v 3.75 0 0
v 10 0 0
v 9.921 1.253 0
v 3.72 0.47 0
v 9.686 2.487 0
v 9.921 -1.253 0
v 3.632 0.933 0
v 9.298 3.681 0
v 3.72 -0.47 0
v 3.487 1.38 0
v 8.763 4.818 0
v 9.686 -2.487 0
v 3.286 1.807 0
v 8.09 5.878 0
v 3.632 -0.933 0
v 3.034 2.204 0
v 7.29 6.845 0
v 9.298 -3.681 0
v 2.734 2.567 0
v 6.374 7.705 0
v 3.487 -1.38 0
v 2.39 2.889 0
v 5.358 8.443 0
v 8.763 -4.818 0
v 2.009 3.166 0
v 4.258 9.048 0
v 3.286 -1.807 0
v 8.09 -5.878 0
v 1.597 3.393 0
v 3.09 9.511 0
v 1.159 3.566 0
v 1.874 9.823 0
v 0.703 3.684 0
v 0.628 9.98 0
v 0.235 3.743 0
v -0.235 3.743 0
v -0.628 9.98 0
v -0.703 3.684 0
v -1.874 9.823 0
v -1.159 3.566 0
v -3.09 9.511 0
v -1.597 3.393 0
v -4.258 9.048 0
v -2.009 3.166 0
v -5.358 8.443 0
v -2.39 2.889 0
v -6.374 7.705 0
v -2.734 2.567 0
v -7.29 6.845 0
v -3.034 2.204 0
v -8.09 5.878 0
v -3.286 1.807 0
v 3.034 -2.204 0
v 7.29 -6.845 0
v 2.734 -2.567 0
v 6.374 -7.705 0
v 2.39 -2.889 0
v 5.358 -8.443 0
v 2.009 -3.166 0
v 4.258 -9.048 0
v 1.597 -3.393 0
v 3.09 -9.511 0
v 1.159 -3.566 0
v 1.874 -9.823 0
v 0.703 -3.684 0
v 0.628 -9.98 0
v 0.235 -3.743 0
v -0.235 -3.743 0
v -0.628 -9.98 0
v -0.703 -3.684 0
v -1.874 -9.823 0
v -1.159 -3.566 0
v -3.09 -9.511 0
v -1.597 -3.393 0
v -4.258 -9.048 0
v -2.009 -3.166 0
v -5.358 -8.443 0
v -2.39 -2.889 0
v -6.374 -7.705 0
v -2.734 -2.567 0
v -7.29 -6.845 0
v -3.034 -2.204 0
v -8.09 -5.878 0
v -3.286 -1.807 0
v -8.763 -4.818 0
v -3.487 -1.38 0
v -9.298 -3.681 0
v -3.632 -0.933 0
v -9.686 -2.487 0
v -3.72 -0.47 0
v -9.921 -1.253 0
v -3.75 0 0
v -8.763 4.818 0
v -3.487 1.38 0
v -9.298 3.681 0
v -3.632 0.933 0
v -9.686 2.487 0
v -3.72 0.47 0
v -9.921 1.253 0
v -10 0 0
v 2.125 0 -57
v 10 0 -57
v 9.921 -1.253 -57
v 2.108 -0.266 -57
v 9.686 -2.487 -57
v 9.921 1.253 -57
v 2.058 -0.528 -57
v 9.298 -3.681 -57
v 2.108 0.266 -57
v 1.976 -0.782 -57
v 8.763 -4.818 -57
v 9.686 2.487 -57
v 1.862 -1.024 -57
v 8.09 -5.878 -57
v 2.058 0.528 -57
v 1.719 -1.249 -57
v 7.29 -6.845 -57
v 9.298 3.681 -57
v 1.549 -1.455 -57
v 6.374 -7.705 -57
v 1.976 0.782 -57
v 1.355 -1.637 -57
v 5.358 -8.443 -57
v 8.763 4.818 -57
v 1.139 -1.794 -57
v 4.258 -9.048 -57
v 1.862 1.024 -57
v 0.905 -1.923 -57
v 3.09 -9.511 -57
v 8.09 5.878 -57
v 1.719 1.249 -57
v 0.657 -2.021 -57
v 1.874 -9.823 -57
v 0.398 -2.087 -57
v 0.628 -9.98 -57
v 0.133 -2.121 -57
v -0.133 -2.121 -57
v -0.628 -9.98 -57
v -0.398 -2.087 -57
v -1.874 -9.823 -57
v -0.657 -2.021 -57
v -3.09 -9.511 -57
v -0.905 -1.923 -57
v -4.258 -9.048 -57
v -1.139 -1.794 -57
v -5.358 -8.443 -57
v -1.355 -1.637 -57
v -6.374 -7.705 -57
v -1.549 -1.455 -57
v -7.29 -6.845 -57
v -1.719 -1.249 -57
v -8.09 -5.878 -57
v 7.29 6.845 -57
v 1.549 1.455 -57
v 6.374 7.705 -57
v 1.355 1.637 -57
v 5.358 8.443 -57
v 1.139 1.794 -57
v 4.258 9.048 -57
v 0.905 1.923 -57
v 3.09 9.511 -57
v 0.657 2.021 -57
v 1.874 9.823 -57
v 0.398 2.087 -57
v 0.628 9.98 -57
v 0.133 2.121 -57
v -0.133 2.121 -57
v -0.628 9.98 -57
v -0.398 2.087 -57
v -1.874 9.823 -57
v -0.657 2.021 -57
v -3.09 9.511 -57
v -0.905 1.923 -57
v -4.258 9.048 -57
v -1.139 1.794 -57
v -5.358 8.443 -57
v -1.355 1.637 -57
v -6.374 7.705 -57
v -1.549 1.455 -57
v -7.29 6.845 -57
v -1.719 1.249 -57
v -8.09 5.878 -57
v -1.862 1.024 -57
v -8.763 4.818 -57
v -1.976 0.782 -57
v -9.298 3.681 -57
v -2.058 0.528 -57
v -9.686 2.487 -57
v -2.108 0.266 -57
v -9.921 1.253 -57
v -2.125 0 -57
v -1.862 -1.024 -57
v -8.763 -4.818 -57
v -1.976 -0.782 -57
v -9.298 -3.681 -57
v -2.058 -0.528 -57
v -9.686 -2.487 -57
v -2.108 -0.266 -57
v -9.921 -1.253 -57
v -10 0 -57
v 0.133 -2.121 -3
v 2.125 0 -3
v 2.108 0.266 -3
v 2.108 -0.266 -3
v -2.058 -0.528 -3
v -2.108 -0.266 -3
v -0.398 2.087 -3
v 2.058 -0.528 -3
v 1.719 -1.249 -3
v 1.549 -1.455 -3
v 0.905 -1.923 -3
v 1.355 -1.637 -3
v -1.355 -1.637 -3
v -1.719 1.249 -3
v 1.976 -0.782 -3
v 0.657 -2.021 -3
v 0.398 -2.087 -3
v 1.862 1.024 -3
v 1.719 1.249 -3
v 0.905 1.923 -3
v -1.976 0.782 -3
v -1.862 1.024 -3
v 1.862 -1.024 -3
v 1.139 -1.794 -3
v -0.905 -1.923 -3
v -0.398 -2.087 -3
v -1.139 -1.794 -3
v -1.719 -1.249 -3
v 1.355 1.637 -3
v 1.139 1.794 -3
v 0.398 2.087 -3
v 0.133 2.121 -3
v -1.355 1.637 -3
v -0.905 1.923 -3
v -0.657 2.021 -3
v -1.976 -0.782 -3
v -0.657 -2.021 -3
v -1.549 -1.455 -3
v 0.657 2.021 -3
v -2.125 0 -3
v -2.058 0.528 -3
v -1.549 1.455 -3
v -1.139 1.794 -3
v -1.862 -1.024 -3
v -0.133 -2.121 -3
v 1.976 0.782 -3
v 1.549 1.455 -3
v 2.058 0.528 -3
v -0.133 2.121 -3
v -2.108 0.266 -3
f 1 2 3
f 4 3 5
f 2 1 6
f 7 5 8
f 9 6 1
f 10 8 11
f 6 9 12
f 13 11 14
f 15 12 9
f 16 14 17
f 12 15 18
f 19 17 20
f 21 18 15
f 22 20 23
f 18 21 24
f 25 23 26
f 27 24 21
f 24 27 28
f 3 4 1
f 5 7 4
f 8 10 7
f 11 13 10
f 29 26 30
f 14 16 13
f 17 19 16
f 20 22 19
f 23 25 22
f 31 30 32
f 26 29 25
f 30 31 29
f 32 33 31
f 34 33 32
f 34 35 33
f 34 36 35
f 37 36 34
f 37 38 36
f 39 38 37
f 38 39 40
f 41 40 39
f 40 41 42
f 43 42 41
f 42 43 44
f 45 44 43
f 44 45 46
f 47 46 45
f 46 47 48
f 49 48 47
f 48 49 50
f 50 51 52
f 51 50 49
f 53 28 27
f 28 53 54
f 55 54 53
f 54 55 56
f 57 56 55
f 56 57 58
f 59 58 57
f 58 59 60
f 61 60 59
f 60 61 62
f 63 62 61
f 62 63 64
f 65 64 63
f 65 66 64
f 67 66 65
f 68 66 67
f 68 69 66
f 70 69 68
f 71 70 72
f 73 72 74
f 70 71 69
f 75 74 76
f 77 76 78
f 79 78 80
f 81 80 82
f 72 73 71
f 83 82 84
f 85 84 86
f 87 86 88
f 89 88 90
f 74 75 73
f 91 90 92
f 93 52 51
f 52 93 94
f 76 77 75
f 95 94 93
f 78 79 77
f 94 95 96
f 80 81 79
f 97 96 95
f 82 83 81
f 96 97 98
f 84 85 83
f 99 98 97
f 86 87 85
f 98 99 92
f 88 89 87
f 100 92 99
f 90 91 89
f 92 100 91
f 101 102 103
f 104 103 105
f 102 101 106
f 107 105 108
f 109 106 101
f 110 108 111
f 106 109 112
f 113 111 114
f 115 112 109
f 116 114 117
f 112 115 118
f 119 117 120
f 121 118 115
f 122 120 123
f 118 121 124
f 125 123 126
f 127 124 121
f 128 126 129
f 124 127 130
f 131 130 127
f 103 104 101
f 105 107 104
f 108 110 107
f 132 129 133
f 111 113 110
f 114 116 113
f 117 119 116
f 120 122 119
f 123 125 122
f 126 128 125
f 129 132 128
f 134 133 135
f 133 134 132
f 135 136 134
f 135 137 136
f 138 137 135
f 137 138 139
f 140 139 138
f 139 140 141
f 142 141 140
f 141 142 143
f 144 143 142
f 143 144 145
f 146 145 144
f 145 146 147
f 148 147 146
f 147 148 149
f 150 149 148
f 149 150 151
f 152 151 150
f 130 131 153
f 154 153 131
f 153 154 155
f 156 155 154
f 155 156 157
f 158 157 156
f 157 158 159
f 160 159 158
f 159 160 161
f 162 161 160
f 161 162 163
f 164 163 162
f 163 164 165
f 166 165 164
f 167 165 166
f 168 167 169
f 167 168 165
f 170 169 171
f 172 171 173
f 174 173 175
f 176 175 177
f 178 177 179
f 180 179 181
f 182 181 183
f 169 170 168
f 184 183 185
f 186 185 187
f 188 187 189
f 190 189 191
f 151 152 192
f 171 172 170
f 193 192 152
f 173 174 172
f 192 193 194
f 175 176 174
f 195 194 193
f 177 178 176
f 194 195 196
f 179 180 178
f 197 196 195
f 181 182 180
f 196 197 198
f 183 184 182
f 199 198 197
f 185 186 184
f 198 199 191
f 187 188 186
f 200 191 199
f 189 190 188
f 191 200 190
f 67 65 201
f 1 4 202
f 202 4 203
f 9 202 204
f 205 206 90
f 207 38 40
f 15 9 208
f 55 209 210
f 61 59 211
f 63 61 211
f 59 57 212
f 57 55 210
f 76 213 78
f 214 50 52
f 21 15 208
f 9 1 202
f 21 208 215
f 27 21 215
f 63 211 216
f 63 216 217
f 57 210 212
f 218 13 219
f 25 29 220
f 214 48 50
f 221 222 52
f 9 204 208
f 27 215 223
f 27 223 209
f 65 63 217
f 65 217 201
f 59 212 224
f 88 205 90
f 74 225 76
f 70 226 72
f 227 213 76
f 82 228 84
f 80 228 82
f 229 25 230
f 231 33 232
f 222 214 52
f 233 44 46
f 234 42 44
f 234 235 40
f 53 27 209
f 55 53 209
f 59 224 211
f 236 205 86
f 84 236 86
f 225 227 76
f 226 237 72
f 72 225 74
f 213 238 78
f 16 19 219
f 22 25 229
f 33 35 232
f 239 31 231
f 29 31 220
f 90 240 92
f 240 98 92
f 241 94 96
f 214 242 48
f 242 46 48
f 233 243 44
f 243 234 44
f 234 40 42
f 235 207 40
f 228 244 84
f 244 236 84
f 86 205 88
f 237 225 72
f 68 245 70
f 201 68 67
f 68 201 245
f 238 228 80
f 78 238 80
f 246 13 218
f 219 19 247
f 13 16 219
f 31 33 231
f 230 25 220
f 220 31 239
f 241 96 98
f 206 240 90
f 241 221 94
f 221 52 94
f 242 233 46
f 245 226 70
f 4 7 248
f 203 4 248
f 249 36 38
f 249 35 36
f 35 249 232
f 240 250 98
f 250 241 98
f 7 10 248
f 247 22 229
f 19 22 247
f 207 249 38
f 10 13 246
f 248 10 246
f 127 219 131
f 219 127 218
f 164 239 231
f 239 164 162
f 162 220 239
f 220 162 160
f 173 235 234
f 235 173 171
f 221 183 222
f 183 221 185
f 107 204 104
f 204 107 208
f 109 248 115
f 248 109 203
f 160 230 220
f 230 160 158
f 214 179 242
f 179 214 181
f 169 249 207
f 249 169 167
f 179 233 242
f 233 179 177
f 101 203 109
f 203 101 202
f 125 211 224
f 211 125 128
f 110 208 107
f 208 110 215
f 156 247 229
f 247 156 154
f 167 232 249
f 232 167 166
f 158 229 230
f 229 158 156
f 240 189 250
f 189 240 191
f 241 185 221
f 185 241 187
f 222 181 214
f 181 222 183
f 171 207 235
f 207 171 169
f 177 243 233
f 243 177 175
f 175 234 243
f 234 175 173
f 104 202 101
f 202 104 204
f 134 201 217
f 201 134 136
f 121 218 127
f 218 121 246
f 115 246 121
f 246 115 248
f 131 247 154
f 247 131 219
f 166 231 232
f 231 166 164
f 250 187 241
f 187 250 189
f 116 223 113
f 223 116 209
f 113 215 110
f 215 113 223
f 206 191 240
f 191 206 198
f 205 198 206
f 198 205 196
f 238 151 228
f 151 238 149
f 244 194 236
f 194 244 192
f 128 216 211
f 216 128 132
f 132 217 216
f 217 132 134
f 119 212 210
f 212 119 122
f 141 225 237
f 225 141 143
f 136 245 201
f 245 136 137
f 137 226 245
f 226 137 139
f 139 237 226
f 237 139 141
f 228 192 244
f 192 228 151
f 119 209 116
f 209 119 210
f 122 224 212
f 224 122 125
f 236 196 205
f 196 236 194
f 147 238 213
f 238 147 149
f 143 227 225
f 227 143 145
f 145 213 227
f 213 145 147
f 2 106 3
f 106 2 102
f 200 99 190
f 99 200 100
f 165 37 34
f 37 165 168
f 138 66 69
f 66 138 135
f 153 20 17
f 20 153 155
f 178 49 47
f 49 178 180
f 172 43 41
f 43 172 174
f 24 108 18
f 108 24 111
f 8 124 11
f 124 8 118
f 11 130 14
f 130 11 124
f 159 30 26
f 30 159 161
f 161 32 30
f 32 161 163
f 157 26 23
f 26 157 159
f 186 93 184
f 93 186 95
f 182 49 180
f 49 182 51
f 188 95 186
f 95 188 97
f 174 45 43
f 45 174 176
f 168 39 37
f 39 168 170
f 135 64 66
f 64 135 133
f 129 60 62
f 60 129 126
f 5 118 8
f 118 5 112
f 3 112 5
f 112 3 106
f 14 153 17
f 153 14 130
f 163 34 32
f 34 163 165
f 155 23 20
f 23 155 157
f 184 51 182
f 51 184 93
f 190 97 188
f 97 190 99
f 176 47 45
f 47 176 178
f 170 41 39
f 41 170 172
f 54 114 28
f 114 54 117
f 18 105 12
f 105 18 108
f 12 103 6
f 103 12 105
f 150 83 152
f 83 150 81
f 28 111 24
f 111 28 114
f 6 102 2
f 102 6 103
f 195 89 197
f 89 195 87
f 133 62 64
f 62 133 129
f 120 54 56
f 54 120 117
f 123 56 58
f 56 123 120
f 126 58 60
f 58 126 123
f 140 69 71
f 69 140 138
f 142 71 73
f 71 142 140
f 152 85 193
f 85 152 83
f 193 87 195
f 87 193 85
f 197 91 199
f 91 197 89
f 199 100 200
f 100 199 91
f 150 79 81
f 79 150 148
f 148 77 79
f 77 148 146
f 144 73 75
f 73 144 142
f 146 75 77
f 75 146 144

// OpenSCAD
$fn = 50;


difference() {
	union() {
		translate(v = [0, 0, -57.0000000000]) {
			cylinder(h = 57, r = 10.0000000000);
		}
		cylinder(h = 0, r = 20.0000000000);
	}
	union() {
		translate(v = [0, 0, 0]) {
			rotate(a = [0, 0, 0]) {
				difference() {
					union() {
						#translate(v = [0, 0, -57.0000000000]) {
							cylinder(h = 57, r = 2.0000000000);
						}
						#translate(v = [0, 0, -3]) {
							cylinder(h = 3, r1 = 2.1250000000, r2 = 3.7500000000);
						}
						#translate(v = [0, 0, -57.0000000000]) {
							cylinder(h = 57, r = 2.1250000000);
						}
						#translate(v = [0, 0, -57.0000000000]) {
							cylinder(h = 57, r = 2.0000000000);
						}
					}
					union();
				}
			}
		}
	}
}
